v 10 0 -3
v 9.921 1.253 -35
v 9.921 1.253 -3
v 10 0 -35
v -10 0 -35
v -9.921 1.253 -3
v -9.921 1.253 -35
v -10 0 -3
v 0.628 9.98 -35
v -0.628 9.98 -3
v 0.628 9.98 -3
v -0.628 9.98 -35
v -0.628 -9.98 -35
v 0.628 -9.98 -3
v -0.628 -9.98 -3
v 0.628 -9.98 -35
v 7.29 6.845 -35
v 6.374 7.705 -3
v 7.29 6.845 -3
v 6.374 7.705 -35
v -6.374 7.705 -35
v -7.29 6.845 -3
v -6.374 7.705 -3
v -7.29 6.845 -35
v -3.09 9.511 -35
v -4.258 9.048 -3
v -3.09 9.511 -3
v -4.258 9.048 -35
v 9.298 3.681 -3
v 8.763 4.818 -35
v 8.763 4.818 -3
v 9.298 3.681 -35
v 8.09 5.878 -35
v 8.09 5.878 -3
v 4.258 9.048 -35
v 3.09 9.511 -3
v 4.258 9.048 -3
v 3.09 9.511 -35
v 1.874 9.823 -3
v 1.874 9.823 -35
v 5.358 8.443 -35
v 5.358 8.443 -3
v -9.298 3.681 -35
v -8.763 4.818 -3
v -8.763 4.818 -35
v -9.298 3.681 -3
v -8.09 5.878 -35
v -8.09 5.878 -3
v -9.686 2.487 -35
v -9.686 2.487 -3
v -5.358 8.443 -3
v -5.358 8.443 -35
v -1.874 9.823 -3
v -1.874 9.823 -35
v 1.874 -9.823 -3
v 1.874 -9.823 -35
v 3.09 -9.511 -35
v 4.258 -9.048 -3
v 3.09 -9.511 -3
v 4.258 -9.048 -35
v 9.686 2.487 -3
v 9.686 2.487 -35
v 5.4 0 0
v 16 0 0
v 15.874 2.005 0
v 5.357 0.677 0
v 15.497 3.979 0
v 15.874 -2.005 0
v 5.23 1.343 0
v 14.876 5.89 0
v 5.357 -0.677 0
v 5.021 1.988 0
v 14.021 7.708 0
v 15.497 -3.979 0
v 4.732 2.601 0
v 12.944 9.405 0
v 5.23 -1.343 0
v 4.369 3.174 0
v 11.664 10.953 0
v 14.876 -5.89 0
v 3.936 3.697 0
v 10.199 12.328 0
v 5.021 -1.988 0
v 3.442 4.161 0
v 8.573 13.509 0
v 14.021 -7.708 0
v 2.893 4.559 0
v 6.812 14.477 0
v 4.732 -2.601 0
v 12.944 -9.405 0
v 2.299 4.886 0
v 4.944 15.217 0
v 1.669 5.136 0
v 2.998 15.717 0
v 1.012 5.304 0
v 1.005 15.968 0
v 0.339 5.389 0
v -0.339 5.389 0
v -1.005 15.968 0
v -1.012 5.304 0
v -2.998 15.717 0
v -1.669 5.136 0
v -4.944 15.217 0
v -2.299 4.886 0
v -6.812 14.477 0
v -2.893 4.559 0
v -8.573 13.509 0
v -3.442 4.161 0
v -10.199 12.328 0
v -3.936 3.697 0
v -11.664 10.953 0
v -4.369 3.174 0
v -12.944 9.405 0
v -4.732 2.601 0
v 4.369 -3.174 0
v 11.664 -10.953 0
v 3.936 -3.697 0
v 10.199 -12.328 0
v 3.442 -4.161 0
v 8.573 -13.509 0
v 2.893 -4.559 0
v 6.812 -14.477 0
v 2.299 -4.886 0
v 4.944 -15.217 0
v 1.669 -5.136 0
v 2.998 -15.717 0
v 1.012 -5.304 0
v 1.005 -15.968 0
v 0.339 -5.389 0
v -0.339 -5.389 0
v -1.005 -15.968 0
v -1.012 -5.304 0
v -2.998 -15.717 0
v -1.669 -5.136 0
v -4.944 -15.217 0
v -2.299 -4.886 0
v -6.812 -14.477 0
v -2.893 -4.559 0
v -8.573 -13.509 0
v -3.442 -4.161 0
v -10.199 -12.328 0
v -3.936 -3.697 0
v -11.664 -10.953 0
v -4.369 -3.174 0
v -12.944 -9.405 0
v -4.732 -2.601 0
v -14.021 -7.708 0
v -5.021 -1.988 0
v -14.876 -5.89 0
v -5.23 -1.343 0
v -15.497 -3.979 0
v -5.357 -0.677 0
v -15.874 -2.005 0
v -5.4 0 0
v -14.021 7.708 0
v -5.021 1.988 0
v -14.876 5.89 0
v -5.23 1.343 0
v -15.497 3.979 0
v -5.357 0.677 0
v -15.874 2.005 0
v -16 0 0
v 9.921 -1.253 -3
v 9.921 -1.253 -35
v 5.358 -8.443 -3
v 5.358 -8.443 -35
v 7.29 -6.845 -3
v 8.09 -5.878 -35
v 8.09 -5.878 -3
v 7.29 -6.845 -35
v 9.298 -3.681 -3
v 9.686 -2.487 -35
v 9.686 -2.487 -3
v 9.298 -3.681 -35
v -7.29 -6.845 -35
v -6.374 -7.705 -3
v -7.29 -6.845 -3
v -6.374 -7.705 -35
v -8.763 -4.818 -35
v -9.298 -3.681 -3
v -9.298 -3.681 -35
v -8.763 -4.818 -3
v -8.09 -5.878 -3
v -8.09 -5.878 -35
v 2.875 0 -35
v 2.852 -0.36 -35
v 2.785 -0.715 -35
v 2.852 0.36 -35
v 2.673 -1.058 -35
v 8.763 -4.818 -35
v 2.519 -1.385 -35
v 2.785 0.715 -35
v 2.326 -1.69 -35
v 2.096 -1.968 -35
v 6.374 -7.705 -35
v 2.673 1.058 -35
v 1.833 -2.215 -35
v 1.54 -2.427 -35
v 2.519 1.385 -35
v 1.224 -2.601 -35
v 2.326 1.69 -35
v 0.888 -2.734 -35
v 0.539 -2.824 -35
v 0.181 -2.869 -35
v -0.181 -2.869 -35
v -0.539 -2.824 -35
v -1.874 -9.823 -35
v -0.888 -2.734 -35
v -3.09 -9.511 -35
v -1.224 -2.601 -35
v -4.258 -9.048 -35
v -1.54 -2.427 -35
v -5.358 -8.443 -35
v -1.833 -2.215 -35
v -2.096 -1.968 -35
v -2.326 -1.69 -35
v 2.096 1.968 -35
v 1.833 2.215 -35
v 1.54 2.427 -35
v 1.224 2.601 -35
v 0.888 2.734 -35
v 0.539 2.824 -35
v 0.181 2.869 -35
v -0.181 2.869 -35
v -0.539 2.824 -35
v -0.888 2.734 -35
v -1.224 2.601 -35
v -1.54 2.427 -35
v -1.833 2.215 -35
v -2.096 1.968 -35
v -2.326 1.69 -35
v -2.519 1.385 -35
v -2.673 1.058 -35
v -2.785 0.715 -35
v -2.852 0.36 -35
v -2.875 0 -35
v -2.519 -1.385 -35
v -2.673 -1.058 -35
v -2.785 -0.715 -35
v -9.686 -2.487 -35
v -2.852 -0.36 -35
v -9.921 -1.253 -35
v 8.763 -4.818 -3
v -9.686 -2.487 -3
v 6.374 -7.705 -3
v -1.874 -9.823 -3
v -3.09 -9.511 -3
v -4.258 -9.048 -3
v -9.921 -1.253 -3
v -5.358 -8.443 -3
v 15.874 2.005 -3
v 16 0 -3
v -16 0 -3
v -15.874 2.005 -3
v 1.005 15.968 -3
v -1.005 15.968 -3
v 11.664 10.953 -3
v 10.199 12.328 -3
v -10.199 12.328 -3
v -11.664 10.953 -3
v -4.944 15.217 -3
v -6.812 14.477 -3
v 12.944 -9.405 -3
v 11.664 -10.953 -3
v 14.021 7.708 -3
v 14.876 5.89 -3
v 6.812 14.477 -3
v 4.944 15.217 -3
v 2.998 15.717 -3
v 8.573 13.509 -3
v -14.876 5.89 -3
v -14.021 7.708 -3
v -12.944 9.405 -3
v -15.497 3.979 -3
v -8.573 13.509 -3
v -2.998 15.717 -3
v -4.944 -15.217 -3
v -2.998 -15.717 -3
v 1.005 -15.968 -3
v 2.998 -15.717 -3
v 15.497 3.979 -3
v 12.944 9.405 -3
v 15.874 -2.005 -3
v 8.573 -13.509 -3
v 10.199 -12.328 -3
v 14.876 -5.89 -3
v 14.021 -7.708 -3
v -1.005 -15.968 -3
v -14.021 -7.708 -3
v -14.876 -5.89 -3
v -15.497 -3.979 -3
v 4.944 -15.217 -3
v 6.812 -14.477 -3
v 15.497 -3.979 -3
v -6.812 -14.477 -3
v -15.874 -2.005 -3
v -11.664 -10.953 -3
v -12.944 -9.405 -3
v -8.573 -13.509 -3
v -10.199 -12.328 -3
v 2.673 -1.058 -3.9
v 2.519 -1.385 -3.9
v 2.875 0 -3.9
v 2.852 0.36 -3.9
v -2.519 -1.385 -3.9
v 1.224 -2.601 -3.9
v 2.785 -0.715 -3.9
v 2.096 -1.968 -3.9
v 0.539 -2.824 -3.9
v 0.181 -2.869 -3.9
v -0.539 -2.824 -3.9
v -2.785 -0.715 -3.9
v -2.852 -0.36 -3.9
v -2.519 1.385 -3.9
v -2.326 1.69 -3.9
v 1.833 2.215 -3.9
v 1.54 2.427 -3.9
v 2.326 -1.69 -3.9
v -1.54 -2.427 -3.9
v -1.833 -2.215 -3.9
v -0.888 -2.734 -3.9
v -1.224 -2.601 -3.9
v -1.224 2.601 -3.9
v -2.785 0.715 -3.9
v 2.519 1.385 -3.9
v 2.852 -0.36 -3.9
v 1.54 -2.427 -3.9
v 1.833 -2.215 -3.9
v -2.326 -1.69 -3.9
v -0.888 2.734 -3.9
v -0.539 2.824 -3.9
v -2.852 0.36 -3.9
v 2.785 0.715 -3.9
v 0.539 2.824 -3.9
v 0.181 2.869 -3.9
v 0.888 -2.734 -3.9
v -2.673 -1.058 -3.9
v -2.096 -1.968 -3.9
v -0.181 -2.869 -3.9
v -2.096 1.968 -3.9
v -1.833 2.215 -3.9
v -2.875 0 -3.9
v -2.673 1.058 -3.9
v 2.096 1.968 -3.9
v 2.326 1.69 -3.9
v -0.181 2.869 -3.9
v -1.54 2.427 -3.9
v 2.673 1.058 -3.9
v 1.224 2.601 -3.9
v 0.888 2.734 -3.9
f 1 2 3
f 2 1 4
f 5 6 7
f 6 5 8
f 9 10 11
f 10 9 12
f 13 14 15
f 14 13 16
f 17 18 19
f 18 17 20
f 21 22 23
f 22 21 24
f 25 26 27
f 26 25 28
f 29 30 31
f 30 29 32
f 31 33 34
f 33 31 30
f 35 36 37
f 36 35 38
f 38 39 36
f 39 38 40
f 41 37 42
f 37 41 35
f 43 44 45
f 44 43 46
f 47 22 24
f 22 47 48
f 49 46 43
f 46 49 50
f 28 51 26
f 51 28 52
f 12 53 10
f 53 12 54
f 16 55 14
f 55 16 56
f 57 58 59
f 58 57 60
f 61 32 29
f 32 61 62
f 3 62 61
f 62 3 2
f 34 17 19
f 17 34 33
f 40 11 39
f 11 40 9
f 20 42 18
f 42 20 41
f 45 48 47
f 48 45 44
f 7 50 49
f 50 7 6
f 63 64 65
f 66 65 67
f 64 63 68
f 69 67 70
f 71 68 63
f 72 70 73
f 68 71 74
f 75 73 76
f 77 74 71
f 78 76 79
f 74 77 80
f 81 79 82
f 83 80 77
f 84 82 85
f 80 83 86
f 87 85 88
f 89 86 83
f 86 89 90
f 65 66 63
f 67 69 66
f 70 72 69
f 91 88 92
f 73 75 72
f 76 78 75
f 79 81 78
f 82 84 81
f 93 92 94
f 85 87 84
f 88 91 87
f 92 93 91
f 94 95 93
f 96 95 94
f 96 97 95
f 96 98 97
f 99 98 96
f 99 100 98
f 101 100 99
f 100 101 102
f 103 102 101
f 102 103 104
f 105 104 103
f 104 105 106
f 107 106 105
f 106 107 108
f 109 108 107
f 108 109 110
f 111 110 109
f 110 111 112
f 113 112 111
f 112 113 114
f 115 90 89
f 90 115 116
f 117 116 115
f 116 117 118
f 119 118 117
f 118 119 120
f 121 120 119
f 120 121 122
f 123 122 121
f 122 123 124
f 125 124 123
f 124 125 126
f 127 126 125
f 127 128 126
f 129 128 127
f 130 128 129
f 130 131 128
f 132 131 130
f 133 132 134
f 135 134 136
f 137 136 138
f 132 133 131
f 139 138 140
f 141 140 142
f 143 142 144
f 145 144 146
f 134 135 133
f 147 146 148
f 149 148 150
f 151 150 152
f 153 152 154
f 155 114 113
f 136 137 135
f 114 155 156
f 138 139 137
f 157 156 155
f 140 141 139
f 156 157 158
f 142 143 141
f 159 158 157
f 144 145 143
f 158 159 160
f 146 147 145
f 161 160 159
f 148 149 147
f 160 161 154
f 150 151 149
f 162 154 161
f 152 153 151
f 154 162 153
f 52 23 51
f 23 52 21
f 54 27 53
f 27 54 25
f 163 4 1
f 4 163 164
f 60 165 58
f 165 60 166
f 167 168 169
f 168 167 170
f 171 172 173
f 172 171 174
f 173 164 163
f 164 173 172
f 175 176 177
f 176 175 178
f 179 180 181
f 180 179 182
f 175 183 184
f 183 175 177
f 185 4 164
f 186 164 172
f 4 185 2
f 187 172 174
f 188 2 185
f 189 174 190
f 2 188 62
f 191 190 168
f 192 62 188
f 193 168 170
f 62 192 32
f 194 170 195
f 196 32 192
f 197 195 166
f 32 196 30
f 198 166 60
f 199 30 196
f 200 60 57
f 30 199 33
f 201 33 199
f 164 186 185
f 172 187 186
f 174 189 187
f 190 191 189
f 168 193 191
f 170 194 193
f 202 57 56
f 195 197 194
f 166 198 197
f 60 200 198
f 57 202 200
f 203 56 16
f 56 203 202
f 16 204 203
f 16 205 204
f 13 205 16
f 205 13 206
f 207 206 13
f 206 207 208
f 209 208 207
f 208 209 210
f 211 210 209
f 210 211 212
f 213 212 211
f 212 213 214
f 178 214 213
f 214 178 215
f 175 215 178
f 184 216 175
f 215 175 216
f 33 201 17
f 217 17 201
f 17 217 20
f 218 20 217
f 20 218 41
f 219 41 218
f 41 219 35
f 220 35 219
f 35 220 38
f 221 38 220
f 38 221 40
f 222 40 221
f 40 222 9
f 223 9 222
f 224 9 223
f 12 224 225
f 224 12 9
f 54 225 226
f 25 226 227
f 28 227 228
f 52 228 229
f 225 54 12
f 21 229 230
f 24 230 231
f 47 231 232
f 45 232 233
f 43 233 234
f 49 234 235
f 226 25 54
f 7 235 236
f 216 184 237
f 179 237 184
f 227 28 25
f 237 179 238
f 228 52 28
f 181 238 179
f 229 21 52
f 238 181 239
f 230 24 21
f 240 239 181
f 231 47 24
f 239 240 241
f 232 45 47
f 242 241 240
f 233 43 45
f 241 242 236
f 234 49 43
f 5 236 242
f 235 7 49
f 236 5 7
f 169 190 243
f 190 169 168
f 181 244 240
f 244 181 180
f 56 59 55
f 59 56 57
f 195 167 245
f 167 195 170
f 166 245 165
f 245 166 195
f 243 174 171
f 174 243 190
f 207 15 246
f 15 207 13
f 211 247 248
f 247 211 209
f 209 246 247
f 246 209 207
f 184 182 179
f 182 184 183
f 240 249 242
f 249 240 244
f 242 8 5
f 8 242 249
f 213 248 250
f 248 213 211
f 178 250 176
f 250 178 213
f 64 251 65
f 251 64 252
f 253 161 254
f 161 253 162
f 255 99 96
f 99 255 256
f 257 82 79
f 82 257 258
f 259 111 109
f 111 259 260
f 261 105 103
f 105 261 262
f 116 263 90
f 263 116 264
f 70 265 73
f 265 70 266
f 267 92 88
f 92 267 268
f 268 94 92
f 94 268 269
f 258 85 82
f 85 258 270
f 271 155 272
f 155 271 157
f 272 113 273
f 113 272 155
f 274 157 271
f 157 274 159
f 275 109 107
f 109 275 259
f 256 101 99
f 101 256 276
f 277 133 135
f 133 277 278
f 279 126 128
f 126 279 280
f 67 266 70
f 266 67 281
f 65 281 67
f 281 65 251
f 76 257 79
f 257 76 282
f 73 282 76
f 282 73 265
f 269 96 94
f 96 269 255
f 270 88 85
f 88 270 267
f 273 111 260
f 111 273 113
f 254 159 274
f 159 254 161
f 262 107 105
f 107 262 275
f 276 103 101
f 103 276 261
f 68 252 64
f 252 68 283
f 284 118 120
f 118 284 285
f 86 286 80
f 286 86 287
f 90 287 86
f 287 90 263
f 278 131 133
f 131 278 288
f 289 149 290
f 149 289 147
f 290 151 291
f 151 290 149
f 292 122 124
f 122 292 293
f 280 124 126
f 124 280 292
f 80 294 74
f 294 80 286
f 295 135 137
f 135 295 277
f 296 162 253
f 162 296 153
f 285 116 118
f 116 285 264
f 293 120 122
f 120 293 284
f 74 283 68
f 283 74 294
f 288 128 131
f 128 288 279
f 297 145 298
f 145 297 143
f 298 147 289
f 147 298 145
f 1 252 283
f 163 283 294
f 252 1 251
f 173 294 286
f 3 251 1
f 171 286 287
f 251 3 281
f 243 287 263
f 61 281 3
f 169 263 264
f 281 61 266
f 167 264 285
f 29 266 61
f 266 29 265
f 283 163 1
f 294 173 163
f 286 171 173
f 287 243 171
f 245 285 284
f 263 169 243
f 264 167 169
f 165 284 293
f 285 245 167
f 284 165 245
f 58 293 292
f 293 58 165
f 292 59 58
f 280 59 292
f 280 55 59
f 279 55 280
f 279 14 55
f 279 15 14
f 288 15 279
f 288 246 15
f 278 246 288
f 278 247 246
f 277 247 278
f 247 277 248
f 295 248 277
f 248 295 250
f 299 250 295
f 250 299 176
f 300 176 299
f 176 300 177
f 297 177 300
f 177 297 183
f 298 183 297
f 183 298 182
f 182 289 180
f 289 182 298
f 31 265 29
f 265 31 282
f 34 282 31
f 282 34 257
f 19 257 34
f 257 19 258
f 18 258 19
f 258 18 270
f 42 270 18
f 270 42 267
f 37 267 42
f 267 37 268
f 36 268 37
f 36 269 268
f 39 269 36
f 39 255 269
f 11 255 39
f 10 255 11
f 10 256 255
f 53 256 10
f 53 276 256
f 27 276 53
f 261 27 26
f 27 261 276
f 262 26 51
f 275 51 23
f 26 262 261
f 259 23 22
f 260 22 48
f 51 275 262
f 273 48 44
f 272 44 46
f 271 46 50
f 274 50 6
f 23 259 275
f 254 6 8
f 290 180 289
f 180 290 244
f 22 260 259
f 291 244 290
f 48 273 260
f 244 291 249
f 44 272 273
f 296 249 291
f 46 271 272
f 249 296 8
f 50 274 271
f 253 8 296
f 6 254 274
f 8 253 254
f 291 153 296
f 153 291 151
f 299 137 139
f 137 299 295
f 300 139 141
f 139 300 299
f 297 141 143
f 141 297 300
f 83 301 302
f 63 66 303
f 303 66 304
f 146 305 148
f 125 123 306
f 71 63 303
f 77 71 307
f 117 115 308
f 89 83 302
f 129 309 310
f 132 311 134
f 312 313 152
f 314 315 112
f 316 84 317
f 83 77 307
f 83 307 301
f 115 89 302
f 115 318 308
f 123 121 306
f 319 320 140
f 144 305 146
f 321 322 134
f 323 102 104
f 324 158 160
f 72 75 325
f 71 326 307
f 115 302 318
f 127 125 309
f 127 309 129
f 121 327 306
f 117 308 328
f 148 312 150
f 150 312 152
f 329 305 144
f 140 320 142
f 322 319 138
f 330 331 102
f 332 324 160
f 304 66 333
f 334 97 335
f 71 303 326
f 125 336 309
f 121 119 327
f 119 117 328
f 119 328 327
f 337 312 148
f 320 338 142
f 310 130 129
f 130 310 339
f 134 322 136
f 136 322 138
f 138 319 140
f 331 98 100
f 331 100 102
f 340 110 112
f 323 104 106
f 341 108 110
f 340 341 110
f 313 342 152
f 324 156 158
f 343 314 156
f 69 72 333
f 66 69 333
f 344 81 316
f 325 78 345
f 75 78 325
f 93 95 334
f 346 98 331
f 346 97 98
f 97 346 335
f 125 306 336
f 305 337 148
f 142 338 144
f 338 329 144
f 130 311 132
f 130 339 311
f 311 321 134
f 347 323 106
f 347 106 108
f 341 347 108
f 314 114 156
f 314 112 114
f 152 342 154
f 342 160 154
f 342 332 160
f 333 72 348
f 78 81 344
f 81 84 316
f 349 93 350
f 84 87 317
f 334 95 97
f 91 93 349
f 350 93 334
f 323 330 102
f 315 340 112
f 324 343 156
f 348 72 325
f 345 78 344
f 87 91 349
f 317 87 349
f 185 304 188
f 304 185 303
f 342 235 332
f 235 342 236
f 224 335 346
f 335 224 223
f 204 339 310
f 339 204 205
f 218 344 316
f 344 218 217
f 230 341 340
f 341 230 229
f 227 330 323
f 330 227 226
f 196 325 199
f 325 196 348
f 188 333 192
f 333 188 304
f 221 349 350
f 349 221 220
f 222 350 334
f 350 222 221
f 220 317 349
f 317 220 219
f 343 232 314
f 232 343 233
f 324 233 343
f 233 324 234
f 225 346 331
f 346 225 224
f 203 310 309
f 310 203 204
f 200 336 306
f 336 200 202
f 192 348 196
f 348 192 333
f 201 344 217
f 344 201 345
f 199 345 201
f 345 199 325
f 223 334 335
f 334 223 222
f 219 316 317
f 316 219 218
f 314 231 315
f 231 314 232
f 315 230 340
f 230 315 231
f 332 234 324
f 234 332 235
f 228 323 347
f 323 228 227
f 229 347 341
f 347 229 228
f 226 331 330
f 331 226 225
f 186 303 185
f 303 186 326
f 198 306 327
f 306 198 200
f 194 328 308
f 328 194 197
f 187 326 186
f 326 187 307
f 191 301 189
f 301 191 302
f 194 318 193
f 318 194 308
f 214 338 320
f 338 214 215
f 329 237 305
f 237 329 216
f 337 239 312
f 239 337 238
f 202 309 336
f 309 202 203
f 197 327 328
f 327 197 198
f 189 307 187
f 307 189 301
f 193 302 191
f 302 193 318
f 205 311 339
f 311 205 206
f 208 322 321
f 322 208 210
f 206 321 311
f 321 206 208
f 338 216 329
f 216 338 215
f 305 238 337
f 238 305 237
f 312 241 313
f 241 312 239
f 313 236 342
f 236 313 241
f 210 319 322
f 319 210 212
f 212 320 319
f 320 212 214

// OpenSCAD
$fn = 50;


difference() {
	union() {
		translate(v = [0, 0, -35.0000000000]) {
			cylinder(h = 35, r = 10.0000000000);
		}
		translate(v = [0, 0, -3.0000000000]) {
			cylinder(h = 3, r = 16.0000000000);
		}
	}
	union() {
		translate(v = [0, 0, 0]) {
			rotate(a = [0, 0, 0]) {
				difference() {
					union() {
						#translate(v = [0, 0, -35.0000000000]) {
							cylinder(h = 35, r = 2.6000000000);
						}
						#translate(v = [0, 0, -3.9000000000]) {
							cylinder(h = 3.9000000000, r = 10.0000000000, r1 = 2.8750000000, r2 = 5.4000000000);
						}
						#translate(v = [0, 0, -35.0000000000]) {
							cylinder(h = 35, r = 2.8750000000);
						}
						#translate(v = [0, 0, -35.0000000000]) {
							cylinder(h = 35, r = 2.6000000000);
						}
					}
					union();
				}
			}
		}
	}
}
